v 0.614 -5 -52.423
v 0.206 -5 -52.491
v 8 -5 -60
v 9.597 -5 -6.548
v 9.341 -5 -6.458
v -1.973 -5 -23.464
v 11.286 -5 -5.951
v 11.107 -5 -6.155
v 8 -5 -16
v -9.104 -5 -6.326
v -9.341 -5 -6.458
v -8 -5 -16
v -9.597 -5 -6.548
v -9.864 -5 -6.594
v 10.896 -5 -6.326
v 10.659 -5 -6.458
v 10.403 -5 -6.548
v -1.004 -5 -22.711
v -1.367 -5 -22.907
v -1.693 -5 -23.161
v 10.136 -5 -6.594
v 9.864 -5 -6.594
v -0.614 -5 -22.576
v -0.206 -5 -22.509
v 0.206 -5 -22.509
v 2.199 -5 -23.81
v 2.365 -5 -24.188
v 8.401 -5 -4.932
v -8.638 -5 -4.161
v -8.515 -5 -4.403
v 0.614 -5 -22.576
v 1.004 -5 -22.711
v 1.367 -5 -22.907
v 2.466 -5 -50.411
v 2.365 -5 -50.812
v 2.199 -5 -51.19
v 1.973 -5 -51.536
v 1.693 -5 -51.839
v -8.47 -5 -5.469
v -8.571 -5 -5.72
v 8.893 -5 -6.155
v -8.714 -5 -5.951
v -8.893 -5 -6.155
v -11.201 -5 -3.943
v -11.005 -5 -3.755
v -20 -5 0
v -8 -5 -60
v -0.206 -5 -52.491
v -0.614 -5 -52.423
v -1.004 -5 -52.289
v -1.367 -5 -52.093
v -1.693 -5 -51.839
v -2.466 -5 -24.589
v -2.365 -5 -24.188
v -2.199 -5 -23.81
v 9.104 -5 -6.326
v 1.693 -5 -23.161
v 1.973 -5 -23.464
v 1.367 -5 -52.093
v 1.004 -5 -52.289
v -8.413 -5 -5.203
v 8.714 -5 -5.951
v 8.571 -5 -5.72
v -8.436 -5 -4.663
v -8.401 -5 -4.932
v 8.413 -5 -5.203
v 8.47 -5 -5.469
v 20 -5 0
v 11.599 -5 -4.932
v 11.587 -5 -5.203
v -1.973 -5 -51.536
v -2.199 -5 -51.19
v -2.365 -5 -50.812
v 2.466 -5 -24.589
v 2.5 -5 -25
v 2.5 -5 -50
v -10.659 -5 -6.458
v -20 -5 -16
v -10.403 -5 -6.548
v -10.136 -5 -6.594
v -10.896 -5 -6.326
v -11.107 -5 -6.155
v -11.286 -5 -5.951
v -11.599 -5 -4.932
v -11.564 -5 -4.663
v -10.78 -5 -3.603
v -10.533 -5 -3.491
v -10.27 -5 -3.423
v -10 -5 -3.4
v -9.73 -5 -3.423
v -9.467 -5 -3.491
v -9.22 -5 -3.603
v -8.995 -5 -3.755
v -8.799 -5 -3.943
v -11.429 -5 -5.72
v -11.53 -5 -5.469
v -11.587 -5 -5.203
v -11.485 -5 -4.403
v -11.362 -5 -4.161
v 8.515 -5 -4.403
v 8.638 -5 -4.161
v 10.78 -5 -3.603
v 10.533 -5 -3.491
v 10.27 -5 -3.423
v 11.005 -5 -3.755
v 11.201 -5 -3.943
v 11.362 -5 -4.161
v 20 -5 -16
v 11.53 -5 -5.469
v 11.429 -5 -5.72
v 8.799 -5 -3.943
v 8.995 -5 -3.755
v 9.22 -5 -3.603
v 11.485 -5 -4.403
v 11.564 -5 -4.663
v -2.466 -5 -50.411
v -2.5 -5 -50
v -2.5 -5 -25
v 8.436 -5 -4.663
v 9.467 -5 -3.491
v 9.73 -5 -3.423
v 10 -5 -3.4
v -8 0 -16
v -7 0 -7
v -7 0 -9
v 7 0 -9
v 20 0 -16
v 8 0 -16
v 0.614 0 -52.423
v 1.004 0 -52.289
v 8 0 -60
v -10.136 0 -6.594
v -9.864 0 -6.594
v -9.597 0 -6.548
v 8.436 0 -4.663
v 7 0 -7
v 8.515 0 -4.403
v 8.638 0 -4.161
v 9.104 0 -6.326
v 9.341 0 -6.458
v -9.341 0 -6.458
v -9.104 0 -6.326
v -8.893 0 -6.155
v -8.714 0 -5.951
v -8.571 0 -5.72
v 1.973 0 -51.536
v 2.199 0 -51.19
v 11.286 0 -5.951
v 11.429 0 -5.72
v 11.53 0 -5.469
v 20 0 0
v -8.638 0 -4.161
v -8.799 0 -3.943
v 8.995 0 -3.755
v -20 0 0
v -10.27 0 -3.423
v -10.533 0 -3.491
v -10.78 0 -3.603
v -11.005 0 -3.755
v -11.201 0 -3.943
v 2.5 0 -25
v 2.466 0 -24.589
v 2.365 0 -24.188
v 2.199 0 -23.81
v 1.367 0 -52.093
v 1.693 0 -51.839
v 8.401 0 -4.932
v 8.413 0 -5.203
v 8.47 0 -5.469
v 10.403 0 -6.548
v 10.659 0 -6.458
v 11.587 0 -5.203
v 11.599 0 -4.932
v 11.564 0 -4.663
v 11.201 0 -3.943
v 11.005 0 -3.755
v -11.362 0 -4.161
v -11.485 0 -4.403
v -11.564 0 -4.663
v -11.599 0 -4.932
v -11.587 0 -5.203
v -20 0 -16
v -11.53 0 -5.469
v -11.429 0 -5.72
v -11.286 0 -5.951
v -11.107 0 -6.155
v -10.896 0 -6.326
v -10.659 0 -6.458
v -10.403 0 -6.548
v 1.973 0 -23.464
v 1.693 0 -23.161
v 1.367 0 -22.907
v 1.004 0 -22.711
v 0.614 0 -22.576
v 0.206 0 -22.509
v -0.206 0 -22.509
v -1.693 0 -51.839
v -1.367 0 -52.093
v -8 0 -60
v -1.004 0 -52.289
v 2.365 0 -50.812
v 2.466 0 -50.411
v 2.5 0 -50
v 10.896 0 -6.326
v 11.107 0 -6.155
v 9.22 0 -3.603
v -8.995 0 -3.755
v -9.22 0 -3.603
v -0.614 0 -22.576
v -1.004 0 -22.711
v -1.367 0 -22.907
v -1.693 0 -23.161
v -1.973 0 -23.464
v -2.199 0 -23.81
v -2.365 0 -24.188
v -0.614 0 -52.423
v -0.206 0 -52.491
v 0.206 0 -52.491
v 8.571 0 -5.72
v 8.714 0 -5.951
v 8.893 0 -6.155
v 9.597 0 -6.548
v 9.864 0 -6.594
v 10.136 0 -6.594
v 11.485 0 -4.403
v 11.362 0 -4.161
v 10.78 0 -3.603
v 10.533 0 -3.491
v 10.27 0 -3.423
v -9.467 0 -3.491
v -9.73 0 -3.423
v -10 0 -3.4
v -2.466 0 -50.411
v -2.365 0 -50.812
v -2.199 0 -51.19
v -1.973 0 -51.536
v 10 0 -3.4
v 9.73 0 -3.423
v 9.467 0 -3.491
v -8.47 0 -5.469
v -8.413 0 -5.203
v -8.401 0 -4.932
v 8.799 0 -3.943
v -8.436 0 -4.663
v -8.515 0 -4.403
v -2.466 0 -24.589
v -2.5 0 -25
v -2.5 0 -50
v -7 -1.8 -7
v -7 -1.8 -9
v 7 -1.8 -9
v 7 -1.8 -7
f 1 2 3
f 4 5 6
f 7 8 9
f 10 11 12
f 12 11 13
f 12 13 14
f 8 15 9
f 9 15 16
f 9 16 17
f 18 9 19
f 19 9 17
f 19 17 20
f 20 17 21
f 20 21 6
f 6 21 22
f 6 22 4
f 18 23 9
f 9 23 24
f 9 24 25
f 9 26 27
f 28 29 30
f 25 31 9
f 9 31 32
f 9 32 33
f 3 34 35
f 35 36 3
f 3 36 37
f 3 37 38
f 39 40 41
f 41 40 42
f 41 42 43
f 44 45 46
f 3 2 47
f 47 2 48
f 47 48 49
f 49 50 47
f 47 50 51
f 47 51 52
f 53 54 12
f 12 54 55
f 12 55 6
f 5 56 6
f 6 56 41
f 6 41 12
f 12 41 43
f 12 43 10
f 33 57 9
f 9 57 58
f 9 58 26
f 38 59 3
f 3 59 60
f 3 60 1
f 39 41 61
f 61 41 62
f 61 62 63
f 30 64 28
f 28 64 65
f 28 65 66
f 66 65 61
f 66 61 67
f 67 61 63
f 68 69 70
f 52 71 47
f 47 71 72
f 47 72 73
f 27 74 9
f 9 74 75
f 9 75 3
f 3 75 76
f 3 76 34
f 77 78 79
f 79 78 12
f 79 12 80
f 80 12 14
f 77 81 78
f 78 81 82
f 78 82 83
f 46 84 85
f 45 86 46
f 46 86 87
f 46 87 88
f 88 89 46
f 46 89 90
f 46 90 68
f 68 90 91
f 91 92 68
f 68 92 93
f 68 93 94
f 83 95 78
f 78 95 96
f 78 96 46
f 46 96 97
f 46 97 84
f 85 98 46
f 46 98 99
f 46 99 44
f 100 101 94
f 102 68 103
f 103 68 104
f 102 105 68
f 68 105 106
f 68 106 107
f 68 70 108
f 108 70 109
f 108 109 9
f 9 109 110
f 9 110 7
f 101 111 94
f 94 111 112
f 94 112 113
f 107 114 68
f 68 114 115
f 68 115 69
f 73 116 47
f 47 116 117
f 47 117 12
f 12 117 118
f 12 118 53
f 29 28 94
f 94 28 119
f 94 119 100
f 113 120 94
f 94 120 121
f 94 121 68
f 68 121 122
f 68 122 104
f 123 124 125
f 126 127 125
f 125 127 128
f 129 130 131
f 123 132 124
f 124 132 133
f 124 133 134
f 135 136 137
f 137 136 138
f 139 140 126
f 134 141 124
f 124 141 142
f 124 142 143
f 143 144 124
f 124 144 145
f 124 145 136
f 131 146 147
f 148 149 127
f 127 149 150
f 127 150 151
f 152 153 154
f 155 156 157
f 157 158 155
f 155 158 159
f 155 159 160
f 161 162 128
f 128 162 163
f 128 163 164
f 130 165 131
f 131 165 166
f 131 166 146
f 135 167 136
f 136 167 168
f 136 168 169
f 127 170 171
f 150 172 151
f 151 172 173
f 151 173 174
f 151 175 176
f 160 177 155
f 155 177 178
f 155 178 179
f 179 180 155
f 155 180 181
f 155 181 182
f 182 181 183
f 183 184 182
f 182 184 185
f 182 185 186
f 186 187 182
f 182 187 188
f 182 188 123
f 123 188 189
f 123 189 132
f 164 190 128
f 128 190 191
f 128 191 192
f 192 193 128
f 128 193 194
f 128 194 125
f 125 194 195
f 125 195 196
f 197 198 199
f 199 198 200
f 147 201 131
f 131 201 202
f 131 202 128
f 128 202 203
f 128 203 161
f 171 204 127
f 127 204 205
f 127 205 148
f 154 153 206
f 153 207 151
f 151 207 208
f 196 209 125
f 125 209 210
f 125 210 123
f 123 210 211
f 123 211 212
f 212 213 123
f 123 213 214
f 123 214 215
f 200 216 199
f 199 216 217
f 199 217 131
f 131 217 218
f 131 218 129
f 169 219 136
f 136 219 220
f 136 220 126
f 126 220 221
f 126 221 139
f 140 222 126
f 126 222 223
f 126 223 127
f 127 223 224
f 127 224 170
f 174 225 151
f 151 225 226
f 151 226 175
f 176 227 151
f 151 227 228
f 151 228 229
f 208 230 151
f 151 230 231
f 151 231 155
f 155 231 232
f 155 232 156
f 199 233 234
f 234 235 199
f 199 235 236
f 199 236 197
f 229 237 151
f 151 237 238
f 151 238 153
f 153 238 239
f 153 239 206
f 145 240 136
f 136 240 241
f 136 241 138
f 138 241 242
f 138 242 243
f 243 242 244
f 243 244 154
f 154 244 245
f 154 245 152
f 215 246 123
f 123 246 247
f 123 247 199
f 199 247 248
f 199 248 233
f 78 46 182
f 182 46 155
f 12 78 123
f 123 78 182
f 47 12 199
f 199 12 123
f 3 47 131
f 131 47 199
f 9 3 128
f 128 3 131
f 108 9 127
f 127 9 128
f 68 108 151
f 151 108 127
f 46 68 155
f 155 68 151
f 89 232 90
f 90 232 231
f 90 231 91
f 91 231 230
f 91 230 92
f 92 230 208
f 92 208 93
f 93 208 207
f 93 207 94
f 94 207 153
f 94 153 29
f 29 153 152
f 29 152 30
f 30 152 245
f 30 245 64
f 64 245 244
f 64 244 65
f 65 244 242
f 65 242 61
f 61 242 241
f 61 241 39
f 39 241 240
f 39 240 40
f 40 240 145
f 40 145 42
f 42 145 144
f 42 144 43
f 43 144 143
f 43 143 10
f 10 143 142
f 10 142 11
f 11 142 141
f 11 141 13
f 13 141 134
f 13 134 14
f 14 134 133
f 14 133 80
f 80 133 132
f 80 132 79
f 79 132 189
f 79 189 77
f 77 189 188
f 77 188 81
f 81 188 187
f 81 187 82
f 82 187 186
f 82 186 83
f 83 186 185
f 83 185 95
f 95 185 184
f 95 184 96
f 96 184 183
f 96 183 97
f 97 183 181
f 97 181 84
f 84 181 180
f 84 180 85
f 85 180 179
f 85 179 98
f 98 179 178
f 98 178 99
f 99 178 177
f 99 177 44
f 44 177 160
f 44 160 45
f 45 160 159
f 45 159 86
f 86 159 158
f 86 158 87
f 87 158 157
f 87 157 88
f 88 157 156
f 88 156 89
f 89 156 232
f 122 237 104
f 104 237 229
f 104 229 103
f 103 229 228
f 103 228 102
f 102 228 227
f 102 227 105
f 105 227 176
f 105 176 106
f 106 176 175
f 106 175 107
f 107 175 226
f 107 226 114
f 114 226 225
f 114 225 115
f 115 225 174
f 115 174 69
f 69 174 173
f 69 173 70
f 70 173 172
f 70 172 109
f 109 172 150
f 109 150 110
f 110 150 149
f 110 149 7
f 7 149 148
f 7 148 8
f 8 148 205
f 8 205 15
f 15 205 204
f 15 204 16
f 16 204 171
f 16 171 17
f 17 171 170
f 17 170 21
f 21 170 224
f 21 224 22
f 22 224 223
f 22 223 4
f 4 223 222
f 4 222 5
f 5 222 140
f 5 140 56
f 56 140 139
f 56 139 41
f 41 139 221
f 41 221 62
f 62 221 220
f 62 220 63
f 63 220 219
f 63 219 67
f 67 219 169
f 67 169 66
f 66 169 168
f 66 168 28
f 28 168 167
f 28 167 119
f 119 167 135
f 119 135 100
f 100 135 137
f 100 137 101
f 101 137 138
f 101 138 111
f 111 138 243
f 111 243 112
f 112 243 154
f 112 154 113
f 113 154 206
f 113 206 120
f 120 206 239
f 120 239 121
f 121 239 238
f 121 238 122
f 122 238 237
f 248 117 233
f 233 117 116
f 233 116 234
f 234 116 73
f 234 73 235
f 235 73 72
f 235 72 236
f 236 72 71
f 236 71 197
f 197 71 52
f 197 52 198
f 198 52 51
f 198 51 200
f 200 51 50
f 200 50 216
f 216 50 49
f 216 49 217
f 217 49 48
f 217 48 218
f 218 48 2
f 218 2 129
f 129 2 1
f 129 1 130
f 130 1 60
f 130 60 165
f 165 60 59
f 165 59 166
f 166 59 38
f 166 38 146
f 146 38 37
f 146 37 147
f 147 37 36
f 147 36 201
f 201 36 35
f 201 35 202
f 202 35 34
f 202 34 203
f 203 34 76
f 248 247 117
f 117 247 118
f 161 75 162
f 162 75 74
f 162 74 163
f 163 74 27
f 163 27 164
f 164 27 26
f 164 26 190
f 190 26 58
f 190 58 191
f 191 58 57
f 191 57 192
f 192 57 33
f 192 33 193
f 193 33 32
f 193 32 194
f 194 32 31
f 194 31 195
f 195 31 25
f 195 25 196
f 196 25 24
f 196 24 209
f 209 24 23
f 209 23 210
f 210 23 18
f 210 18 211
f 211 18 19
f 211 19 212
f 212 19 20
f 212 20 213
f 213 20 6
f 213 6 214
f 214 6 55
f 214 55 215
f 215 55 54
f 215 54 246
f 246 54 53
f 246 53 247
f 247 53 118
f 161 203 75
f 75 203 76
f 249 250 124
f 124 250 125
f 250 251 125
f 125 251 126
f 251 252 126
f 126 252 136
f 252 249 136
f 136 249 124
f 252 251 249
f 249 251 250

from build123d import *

# Parameters (mm, degrees)
SKETCH_2_R          = 1.6
EXTRUDE_2_DEPTH     = 5
CUT_EXTRUDE_1_DEPTH = 56.009090158
SKETCH_6_W          = 14
SKETCH_6_H          = 2
CUT_EXTRUDE_2_DEPTH = 1.8


with BuildPart() as part:
    # 草图2 → 凸台-拉伸2 (new body)
    with BuildSketch(Plane(origin=(0, 0, 0), x_dir=(1, 0, 0), z_dir=(0, 1, 0))):
        Polygon((-20, 16), (-8, 16), (-8, 60), (8, 60), (8, 16), (20, 16), (20, 0), (-20, 0), align=None)
        with Locations(Location((-10, 5, 0), (0, 0, 270))):
            Circle(SKETCH_2_R, mode=Mode.SUBTRACT)
        with Locations(Location((10, 5, 0), (0, 0, 270))):
            Circle(SKETCH_2_R, mode=Mode.SUBTRACT)
    extrude(amount=-EXTRUDE_2_DEPTH)

    # 草图5 → 切除-拉伸1 (cut, through all)
    with BuildSketch(Plane(origin=(0, -5, -9), x_dir=(1, 0, 0), z_dir=(0, 1, 0))):
        with BuildLine():
            Line((2.5, 41), (2.5, 16))
            ThreePointArc((2.5, 16), (0, 13.5), (-2.5, 16))
            Line((-2.5, 16), (-2.5, 41))
            ThreePointArc((-2.5, 41), (0, 43.5), (2.5, 41))
        make_face()
    extrude(amount=CUT_EXTRUDE_1_DEPTH, mode=Mode.SUBTRACT)

    # 草图6 → 切除-拉伸2 (cut)
    with BuildSketch(Plane(origin=(0, 0, 0), x_dir=(1, 0, 0), z_dir=(0, 1, 0))):
        with Locations((0, 8)):
            Rectangle(SKETCH_6_W, SKETCH_6_H)
    extrude(amount=-CUT_EXTRUDE_2_DEPTH, mode=Mode.SUBTRACT)


solid = part.part
